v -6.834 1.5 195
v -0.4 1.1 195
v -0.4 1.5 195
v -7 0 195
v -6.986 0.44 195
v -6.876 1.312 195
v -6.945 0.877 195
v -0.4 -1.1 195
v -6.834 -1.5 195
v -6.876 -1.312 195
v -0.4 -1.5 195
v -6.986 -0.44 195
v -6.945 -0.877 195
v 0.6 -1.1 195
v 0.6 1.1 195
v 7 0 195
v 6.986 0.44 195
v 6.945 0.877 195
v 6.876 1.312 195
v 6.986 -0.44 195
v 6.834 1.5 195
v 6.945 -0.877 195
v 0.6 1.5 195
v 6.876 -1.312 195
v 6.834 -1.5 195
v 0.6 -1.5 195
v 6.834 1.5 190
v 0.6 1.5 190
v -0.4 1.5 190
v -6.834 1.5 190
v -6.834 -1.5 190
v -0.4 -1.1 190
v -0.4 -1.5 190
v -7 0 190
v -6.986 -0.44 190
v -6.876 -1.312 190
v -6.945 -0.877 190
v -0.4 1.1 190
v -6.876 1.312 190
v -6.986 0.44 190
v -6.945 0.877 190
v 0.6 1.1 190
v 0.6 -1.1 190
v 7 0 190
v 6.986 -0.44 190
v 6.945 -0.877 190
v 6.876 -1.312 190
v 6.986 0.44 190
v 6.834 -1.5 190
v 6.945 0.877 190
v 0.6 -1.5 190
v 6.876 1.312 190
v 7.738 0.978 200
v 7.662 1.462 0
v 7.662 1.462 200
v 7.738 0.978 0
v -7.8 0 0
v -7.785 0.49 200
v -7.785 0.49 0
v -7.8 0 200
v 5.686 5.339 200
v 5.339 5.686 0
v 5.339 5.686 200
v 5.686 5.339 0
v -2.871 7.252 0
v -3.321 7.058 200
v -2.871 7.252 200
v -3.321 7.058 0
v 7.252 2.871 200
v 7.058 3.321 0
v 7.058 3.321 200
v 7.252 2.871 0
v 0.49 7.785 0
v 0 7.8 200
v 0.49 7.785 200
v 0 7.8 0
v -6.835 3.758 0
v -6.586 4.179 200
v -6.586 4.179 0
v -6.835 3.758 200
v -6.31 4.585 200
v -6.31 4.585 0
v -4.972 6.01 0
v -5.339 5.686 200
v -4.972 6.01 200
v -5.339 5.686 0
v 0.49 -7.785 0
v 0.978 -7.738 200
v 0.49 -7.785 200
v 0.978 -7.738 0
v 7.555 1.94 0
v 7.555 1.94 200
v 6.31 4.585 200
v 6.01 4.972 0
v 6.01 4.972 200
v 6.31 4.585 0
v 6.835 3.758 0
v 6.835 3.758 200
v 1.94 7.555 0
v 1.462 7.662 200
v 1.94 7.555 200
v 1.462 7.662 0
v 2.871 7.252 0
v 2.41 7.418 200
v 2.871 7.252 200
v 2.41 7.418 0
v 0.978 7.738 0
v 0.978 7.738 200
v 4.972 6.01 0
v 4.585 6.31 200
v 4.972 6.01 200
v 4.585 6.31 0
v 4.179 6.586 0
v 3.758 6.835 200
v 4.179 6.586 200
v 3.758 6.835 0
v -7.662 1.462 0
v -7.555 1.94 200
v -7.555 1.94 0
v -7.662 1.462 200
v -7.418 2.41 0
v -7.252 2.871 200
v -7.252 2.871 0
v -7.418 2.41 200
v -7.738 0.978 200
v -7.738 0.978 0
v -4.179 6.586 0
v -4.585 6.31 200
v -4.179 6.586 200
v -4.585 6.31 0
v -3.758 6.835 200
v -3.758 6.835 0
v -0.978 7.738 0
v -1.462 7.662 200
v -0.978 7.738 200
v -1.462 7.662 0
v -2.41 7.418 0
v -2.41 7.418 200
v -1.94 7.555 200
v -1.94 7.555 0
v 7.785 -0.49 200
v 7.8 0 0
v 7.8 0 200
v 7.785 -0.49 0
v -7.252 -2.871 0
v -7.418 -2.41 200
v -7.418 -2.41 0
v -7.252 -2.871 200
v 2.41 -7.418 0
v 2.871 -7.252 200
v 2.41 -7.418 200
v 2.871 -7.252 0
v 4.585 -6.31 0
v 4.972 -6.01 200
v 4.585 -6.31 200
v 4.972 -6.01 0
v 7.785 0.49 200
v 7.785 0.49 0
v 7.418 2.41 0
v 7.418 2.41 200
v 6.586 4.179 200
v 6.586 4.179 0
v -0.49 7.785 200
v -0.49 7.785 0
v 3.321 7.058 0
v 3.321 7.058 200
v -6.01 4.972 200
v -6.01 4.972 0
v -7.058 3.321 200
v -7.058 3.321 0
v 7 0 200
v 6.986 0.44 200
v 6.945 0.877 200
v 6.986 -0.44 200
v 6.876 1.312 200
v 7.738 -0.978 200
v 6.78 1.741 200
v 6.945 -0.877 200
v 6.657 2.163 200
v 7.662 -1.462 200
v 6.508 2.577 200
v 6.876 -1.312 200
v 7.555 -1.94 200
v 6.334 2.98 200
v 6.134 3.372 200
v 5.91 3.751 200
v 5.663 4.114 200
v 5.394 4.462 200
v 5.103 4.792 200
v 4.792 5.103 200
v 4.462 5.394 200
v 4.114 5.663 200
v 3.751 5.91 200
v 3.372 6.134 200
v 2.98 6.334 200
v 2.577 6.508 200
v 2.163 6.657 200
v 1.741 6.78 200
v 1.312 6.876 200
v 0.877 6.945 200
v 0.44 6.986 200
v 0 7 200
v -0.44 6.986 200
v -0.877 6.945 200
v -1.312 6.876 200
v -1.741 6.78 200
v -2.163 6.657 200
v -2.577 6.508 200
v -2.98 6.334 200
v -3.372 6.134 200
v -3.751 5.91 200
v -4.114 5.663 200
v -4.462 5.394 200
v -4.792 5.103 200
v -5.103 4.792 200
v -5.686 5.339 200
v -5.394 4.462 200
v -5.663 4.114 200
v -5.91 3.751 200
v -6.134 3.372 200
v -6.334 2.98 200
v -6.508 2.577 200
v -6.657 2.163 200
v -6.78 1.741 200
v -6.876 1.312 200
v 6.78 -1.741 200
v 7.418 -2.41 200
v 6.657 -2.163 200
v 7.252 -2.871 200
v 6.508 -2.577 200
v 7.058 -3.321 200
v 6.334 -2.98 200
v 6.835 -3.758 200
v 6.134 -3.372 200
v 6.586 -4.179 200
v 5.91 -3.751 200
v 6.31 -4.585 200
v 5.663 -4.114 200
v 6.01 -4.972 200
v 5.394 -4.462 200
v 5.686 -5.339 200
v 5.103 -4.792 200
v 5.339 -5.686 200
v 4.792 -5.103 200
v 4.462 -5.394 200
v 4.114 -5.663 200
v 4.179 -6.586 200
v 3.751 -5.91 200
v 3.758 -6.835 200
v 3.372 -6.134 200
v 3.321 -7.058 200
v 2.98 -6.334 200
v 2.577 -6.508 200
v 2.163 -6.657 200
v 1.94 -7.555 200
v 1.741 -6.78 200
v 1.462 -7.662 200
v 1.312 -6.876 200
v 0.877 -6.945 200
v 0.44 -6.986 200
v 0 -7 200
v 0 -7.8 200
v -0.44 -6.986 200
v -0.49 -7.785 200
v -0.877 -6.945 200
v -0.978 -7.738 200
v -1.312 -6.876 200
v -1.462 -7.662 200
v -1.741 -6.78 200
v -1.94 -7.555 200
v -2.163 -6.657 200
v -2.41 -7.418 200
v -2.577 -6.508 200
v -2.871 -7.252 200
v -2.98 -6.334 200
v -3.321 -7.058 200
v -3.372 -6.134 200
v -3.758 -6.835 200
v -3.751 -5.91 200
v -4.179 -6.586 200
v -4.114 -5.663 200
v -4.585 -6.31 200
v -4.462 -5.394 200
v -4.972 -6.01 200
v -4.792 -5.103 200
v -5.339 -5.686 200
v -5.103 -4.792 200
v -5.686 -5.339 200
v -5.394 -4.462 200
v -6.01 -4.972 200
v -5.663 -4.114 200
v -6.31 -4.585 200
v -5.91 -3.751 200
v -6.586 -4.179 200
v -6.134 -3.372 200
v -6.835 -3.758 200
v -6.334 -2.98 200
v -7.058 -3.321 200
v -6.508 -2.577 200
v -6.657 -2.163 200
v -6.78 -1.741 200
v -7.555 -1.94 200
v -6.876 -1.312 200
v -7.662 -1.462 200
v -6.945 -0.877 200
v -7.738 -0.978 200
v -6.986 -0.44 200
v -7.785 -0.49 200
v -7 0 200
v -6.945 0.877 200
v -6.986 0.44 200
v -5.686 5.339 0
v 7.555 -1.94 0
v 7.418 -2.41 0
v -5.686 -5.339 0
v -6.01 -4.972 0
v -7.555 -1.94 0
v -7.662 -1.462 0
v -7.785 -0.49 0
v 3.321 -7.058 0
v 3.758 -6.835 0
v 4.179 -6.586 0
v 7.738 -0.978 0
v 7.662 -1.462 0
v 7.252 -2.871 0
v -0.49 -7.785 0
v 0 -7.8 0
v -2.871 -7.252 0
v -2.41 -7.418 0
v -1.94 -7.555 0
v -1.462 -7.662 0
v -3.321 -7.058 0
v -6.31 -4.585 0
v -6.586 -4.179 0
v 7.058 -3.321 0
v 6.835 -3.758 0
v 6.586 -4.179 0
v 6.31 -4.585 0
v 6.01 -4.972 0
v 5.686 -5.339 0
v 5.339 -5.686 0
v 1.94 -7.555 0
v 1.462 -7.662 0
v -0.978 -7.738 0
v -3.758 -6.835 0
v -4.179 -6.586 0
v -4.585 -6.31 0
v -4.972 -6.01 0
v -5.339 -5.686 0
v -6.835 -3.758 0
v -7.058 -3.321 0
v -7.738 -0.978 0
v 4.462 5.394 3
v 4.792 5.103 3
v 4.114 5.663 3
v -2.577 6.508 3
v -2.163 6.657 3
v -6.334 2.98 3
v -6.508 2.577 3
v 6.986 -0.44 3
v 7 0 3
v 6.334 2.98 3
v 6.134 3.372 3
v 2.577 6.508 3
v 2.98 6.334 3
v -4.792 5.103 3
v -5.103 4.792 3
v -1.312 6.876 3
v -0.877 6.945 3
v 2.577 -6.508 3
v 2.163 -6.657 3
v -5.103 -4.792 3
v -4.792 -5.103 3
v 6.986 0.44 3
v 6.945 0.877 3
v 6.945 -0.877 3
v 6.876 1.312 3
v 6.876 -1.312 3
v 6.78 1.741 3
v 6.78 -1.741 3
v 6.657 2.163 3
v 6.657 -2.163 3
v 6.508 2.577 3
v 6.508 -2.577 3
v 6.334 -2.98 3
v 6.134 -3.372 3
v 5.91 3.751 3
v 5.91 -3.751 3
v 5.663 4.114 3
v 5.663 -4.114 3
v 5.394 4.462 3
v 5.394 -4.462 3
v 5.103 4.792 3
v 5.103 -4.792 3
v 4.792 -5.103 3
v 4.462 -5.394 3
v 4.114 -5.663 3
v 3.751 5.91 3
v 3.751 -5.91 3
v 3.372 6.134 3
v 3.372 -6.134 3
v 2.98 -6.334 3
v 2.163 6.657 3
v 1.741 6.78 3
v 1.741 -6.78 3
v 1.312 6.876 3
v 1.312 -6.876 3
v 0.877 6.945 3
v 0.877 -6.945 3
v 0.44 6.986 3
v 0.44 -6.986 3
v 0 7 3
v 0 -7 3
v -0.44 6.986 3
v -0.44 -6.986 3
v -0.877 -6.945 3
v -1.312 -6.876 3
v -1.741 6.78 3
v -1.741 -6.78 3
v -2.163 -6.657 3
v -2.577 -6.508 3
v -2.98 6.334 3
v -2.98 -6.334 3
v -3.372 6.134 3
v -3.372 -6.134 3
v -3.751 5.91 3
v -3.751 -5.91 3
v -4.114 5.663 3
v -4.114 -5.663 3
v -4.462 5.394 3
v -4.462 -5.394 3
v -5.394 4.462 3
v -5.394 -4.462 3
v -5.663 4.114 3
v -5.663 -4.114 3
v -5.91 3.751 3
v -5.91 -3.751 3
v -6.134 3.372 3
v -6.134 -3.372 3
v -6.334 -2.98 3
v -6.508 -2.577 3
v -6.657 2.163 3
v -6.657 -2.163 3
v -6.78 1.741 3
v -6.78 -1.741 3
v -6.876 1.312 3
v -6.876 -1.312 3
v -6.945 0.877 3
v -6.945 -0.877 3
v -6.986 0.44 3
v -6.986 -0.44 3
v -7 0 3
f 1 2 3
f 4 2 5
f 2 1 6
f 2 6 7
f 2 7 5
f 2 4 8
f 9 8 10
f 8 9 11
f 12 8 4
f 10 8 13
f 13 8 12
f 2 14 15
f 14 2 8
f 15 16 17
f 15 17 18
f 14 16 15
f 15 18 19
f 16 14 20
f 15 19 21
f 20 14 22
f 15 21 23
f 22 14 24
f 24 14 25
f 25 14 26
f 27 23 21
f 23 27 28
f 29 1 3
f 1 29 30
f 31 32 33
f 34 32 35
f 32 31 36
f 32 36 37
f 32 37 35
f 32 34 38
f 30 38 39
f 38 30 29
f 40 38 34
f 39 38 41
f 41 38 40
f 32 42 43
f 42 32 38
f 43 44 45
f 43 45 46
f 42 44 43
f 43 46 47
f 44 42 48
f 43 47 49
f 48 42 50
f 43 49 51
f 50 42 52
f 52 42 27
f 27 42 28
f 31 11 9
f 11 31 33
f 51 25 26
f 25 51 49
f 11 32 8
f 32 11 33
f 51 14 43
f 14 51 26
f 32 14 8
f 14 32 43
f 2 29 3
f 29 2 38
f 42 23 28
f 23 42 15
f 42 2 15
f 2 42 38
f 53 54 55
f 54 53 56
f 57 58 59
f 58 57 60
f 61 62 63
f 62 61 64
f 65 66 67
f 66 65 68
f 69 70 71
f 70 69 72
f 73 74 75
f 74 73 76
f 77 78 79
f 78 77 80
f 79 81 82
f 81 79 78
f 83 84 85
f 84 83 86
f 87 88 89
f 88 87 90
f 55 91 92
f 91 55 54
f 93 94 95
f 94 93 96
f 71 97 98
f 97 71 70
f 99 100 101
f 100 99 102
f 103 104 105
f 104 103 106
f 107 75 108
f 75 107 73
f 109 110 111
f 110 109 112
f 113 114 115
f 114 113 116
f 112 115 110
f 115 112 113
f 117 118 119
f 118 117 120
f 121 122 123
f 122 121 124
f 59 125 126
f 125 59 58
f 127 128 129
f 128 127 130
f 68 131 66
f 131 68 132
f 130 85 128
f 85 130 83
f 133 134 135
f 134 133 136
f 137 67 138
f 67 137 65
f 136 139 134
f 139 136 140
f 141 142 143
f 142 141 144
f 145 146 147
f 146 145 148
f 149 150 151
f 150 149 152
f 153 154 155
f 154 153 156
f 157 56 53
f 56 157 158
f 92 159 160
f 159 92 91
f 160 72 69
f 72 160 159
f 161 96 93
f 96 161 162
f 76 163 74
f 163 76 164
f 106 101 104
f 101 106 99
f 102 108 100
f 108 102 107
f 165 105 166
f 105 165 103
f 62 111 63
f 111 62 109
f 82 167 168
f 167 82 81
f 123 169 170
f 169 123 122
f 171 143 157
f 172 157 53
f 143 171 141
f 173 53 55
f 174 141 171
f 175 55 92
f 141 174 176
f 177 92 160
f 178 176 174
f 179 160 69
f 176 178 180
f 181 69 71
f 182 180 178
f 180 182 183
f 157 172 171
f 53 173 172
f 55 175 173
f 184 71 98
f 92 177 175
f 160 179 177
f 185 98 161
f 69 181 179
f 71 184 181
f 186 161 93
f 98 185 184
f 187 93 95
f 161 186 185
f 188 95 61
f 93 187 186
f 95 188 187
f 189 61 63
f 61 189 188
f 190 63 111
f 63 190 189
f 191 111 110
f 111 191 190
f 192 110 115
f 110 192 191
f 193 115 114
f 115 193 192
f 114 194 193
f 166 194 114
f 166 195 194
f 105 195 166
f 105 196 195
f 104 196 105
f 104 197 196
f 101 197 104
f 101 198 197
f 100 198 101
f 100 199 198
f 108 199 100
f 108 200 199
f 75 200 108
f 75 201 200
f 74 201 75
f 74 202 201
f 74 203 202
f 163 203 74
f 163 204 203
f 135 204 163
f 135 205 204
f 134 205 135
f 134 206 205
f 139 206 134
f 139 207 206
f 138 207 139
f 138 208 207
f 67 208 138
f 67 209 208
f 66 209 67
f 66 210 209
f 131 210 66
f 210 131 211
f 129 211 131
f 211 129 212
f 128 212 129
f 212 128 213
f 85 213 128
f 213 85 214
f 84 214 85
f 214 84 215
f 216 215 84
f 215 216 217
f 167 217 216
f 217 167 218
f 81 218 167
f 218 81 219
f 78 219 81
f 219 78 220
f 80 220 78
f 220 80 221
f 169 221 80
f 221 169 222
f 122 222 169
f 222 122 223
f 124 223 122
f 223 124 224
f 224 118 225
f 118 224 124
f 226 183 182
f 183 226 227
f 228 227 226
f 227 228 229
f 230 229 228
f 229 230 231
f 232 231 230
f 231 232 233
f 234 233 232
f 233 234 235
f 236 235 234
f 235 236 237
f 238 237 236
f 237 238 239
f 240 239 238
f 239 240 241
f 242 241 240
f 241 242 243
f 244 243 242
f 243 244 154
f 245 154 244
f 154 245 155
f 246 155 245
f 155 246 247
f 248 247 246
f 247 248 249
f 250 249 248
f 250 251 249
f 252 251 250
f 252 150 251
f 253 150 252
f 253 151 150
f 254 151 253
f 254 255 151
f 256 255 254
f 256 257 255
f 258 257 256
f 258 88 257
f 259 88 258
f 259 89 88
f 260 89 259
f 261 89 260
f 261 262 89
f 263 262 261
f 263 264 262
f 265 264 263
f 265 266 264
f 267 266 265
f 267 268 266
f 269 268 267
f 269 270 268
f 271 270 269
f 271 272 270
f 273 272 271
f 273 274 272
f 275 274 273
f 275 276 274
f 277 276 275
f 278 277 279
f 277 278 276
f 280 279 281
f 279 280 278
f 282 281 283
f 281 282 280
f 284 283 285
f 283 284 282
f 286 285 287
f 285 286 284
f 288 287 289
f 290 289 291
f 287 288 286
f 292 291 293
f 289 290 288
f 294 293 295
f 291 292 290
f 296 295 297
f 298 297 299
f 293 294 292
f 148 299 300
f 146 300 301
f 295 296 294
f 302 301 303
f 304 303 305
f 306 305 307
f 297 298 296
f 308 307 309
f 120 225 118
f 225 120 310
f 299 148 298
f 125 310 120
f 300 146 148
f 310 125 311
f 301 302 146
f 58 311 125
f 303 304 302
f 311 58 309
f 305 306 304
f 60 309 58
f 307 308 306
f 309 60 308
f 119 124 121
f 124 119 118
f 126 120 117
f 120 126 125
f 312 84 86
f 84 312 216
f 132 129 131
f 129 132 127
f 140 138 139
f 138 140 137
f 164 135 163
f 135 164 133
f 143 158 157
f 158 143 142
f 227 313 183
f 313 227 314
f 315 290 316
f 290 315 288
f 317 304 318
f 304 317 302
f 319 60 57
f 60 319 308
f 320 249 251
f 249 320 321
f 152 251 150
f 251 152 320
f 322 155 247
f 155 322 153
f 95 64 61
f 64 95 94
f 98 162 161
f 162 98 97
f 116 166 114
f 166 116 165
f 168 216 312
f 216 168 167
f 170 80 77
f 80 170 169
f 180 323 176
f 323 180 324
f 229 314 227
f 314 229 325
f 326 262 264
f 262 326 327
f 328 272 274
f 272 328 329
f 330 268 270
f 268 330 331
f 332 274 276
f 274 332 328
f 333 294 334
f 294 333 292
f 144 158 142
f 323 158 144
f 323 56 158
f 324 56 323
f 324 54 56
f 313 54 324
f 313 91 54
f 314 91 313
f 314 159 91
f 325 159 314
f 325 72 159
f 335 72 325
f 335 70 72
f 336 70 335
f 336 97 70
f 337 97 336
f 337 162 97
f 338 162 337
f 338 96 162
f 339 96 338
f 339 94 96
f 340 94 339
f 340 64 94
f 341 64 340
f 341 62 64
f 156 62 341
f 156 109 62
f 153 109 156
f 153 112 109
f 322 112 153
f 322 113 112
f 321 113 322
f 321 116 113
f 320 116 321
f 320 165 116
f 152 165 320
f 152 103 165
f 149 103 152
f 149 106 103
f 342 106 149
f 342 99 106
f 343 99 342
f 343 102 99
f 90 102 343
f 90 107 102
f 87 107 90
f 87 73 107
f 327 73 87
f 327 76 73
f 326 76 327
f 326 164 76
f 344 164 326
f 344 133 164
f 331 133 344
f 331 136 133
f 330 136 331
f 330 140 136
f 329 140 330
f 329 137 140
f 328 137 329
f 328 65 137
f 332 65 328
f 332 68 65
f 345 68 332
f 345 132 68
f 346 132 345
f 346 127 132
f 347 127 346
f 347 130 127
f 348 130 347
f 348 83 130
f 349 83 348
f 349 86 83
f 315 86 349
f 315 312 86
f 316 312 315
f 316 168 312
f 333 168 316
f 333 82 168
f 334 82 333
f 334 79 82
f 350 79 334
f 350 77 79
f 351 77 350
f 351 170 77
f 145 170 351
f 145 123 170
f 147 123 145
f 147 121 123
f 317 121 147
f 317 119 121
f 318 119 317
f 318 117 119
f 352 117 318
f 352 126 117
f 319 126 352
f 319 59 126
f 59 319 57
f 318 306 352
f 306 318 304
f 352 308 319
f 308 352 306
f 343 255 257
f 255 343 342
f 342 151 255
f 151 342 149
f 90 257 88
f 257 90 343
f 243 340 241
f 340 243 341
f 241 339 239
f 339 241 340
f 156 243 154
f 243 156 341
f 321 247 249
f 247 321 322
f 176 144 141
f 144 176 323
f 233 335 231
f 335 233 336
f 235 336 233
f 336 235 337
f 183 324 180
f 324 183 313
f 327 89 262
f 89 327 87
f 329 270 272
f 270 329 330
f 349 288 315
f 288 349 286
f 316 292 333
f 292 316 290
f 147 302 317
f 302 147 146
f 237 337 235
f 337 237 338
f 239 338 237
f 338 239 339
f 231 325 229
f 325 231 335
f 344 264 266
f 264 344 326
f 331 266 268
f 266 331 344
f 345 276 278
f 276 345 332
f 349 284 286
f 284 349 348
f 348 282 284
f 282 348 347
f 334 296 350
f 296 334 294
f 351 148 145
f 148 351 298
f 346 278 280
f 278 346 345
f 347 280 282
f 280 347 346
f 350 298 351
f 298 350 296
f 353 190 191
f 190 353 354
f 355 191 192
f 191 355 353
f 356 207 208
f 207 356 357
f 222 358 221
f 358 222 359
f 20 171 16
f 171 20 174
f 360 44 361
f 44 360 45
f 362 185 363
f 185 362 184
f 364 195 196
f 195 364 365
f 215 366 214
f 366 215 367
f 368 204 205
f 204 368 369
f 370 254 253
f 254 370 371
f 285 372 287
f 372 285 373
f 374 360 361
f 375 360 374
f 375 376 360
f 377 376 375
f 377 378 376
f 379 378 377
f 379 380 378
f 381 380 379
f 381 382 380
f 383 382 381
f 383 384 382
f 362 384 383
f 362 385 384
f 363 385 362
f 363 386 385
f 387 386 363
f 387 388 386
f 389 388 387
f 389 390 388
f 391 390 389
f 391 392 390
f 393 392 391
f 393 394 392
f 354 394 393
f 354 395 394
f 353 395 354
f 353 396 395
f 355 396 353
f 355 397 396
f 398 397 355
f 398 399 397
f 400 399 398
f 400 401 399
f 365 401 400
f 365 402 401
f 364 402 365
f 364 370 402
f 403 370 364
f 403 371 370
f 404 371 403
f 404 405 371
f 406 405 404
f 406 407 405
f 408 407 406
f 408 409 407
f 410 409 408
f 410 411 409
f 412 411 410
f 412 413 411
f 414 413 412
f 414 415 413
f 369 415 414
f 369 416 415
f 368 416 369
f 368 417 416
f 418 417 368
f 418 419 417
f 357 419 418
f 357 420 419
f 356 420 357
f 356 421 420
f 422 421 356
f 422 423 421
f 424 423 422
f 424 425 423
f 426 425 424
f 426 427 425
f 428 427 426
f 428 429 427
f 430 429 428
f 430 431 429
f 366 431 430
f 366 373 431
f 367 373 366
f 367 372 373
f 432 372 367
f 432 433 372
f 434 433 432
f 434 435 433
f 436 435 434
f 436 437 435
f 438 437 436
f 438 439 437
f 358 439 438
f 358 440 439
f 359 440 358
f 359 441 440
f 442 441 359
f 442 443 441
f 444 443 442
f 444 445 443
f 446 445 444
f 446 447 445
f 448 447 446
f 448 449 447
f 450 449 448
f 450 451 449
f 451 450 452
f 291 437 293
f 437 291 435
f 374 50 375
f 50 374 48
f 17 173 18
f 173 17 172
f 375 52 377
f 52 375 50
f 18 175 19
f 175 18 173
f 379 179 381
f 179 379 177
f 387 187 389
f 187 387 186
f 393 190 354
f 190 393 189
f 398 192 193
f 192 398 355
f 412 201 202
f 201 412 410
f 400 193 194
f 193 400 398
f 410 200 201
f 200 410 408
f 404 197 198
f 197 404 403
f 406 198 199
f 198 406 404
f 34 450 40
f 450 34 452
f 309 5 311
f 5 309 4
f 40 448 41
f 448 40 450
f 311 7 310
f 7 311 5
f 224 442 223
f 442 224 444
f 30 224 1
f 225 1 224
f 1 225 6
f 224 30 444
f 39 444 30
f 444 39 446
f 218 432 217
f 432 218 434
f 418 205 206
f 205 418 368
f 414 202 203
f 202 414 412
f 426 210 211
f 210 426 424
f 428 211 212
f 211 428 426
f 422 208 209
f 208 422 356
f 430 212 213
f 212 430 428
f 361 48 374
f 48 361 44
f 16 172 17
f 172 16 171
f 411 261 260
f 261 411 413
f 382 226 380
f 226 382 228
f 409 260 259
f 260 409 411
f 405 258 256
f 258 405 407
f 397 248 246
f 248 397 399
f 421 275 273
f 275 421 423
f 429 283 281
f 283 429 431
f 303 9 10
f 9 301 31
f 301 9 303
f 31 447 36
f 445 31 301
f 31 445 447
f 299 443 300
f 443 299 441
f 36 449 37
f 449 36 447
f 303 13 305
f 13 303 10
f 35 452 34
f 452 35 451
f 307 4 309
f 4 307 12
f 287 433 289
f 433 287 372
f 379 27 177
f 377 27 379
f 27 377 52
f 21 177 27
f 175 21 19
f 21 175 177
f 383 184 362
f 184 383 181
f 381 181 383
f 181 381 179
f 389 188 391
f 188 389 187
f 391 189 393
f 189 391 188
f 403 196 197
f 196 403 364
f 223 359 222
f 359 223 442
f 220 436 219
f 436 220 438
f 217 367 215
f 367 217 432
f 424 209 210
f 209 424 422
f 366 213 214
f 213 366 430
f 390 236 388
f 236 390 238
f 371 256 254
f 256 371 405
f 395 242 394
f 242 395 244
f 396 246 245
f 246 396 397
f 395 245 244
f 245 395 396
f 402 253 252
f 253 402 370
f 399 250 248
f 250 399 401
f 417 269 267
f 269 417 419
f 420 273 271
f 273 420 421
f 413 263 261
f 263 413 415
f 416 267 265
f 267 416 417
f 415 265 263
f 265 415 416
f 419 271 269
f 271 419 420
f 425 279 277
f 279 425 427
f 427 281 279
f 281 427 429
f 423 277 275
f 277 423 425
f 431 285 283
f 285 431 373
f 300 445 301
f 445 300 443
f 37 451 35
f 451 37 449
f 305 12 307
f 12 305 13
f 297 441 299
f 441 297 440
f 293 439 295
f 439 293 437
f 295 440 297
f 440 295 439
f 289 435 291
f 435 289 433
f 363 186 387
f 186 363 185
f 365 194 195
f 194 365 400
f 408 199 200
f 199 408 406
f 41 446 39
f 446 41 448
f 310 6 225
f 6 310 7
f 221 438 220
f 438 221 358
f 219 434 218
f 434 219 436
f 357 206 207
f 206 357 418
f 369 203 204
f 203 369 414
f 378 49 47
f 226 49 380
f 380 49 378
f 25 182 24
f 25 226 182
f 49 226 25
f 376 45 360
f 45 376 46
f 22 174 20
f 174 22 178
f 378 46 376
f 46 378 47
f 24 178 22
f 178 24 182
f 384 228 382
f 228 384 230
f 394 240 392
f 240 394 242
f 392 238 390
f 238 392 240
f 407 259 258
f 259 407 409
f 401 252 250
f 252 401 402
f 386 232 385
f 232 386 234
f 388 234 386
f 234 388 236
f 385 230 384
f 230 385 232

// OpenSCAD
$fn=100;
h=200;
d=14;
wall=0.8;
outer_d=d+wall*2;


use <threads_v2p1.scad>;


difference()
{
    cylinder(d=outer_d, h=h);
    translate([0,0,3]) cylinder(d=d, h=h-3);
}



hook_d=3;
hook_h=5;
difference()
{
    translate([-d/2,-hook_d/2,h-5-hook_h])
        cube([d,hook_d,hook_h]);

    translate([-0.4,-hook_d/2,h-5-hook_h])
        cube([1,0.4,hook_h]);
        
    translate([-0.4,+hook_d/2-0.4,h-5-hook_h])
        cube([1,0.4,hook_h]);
    
}
